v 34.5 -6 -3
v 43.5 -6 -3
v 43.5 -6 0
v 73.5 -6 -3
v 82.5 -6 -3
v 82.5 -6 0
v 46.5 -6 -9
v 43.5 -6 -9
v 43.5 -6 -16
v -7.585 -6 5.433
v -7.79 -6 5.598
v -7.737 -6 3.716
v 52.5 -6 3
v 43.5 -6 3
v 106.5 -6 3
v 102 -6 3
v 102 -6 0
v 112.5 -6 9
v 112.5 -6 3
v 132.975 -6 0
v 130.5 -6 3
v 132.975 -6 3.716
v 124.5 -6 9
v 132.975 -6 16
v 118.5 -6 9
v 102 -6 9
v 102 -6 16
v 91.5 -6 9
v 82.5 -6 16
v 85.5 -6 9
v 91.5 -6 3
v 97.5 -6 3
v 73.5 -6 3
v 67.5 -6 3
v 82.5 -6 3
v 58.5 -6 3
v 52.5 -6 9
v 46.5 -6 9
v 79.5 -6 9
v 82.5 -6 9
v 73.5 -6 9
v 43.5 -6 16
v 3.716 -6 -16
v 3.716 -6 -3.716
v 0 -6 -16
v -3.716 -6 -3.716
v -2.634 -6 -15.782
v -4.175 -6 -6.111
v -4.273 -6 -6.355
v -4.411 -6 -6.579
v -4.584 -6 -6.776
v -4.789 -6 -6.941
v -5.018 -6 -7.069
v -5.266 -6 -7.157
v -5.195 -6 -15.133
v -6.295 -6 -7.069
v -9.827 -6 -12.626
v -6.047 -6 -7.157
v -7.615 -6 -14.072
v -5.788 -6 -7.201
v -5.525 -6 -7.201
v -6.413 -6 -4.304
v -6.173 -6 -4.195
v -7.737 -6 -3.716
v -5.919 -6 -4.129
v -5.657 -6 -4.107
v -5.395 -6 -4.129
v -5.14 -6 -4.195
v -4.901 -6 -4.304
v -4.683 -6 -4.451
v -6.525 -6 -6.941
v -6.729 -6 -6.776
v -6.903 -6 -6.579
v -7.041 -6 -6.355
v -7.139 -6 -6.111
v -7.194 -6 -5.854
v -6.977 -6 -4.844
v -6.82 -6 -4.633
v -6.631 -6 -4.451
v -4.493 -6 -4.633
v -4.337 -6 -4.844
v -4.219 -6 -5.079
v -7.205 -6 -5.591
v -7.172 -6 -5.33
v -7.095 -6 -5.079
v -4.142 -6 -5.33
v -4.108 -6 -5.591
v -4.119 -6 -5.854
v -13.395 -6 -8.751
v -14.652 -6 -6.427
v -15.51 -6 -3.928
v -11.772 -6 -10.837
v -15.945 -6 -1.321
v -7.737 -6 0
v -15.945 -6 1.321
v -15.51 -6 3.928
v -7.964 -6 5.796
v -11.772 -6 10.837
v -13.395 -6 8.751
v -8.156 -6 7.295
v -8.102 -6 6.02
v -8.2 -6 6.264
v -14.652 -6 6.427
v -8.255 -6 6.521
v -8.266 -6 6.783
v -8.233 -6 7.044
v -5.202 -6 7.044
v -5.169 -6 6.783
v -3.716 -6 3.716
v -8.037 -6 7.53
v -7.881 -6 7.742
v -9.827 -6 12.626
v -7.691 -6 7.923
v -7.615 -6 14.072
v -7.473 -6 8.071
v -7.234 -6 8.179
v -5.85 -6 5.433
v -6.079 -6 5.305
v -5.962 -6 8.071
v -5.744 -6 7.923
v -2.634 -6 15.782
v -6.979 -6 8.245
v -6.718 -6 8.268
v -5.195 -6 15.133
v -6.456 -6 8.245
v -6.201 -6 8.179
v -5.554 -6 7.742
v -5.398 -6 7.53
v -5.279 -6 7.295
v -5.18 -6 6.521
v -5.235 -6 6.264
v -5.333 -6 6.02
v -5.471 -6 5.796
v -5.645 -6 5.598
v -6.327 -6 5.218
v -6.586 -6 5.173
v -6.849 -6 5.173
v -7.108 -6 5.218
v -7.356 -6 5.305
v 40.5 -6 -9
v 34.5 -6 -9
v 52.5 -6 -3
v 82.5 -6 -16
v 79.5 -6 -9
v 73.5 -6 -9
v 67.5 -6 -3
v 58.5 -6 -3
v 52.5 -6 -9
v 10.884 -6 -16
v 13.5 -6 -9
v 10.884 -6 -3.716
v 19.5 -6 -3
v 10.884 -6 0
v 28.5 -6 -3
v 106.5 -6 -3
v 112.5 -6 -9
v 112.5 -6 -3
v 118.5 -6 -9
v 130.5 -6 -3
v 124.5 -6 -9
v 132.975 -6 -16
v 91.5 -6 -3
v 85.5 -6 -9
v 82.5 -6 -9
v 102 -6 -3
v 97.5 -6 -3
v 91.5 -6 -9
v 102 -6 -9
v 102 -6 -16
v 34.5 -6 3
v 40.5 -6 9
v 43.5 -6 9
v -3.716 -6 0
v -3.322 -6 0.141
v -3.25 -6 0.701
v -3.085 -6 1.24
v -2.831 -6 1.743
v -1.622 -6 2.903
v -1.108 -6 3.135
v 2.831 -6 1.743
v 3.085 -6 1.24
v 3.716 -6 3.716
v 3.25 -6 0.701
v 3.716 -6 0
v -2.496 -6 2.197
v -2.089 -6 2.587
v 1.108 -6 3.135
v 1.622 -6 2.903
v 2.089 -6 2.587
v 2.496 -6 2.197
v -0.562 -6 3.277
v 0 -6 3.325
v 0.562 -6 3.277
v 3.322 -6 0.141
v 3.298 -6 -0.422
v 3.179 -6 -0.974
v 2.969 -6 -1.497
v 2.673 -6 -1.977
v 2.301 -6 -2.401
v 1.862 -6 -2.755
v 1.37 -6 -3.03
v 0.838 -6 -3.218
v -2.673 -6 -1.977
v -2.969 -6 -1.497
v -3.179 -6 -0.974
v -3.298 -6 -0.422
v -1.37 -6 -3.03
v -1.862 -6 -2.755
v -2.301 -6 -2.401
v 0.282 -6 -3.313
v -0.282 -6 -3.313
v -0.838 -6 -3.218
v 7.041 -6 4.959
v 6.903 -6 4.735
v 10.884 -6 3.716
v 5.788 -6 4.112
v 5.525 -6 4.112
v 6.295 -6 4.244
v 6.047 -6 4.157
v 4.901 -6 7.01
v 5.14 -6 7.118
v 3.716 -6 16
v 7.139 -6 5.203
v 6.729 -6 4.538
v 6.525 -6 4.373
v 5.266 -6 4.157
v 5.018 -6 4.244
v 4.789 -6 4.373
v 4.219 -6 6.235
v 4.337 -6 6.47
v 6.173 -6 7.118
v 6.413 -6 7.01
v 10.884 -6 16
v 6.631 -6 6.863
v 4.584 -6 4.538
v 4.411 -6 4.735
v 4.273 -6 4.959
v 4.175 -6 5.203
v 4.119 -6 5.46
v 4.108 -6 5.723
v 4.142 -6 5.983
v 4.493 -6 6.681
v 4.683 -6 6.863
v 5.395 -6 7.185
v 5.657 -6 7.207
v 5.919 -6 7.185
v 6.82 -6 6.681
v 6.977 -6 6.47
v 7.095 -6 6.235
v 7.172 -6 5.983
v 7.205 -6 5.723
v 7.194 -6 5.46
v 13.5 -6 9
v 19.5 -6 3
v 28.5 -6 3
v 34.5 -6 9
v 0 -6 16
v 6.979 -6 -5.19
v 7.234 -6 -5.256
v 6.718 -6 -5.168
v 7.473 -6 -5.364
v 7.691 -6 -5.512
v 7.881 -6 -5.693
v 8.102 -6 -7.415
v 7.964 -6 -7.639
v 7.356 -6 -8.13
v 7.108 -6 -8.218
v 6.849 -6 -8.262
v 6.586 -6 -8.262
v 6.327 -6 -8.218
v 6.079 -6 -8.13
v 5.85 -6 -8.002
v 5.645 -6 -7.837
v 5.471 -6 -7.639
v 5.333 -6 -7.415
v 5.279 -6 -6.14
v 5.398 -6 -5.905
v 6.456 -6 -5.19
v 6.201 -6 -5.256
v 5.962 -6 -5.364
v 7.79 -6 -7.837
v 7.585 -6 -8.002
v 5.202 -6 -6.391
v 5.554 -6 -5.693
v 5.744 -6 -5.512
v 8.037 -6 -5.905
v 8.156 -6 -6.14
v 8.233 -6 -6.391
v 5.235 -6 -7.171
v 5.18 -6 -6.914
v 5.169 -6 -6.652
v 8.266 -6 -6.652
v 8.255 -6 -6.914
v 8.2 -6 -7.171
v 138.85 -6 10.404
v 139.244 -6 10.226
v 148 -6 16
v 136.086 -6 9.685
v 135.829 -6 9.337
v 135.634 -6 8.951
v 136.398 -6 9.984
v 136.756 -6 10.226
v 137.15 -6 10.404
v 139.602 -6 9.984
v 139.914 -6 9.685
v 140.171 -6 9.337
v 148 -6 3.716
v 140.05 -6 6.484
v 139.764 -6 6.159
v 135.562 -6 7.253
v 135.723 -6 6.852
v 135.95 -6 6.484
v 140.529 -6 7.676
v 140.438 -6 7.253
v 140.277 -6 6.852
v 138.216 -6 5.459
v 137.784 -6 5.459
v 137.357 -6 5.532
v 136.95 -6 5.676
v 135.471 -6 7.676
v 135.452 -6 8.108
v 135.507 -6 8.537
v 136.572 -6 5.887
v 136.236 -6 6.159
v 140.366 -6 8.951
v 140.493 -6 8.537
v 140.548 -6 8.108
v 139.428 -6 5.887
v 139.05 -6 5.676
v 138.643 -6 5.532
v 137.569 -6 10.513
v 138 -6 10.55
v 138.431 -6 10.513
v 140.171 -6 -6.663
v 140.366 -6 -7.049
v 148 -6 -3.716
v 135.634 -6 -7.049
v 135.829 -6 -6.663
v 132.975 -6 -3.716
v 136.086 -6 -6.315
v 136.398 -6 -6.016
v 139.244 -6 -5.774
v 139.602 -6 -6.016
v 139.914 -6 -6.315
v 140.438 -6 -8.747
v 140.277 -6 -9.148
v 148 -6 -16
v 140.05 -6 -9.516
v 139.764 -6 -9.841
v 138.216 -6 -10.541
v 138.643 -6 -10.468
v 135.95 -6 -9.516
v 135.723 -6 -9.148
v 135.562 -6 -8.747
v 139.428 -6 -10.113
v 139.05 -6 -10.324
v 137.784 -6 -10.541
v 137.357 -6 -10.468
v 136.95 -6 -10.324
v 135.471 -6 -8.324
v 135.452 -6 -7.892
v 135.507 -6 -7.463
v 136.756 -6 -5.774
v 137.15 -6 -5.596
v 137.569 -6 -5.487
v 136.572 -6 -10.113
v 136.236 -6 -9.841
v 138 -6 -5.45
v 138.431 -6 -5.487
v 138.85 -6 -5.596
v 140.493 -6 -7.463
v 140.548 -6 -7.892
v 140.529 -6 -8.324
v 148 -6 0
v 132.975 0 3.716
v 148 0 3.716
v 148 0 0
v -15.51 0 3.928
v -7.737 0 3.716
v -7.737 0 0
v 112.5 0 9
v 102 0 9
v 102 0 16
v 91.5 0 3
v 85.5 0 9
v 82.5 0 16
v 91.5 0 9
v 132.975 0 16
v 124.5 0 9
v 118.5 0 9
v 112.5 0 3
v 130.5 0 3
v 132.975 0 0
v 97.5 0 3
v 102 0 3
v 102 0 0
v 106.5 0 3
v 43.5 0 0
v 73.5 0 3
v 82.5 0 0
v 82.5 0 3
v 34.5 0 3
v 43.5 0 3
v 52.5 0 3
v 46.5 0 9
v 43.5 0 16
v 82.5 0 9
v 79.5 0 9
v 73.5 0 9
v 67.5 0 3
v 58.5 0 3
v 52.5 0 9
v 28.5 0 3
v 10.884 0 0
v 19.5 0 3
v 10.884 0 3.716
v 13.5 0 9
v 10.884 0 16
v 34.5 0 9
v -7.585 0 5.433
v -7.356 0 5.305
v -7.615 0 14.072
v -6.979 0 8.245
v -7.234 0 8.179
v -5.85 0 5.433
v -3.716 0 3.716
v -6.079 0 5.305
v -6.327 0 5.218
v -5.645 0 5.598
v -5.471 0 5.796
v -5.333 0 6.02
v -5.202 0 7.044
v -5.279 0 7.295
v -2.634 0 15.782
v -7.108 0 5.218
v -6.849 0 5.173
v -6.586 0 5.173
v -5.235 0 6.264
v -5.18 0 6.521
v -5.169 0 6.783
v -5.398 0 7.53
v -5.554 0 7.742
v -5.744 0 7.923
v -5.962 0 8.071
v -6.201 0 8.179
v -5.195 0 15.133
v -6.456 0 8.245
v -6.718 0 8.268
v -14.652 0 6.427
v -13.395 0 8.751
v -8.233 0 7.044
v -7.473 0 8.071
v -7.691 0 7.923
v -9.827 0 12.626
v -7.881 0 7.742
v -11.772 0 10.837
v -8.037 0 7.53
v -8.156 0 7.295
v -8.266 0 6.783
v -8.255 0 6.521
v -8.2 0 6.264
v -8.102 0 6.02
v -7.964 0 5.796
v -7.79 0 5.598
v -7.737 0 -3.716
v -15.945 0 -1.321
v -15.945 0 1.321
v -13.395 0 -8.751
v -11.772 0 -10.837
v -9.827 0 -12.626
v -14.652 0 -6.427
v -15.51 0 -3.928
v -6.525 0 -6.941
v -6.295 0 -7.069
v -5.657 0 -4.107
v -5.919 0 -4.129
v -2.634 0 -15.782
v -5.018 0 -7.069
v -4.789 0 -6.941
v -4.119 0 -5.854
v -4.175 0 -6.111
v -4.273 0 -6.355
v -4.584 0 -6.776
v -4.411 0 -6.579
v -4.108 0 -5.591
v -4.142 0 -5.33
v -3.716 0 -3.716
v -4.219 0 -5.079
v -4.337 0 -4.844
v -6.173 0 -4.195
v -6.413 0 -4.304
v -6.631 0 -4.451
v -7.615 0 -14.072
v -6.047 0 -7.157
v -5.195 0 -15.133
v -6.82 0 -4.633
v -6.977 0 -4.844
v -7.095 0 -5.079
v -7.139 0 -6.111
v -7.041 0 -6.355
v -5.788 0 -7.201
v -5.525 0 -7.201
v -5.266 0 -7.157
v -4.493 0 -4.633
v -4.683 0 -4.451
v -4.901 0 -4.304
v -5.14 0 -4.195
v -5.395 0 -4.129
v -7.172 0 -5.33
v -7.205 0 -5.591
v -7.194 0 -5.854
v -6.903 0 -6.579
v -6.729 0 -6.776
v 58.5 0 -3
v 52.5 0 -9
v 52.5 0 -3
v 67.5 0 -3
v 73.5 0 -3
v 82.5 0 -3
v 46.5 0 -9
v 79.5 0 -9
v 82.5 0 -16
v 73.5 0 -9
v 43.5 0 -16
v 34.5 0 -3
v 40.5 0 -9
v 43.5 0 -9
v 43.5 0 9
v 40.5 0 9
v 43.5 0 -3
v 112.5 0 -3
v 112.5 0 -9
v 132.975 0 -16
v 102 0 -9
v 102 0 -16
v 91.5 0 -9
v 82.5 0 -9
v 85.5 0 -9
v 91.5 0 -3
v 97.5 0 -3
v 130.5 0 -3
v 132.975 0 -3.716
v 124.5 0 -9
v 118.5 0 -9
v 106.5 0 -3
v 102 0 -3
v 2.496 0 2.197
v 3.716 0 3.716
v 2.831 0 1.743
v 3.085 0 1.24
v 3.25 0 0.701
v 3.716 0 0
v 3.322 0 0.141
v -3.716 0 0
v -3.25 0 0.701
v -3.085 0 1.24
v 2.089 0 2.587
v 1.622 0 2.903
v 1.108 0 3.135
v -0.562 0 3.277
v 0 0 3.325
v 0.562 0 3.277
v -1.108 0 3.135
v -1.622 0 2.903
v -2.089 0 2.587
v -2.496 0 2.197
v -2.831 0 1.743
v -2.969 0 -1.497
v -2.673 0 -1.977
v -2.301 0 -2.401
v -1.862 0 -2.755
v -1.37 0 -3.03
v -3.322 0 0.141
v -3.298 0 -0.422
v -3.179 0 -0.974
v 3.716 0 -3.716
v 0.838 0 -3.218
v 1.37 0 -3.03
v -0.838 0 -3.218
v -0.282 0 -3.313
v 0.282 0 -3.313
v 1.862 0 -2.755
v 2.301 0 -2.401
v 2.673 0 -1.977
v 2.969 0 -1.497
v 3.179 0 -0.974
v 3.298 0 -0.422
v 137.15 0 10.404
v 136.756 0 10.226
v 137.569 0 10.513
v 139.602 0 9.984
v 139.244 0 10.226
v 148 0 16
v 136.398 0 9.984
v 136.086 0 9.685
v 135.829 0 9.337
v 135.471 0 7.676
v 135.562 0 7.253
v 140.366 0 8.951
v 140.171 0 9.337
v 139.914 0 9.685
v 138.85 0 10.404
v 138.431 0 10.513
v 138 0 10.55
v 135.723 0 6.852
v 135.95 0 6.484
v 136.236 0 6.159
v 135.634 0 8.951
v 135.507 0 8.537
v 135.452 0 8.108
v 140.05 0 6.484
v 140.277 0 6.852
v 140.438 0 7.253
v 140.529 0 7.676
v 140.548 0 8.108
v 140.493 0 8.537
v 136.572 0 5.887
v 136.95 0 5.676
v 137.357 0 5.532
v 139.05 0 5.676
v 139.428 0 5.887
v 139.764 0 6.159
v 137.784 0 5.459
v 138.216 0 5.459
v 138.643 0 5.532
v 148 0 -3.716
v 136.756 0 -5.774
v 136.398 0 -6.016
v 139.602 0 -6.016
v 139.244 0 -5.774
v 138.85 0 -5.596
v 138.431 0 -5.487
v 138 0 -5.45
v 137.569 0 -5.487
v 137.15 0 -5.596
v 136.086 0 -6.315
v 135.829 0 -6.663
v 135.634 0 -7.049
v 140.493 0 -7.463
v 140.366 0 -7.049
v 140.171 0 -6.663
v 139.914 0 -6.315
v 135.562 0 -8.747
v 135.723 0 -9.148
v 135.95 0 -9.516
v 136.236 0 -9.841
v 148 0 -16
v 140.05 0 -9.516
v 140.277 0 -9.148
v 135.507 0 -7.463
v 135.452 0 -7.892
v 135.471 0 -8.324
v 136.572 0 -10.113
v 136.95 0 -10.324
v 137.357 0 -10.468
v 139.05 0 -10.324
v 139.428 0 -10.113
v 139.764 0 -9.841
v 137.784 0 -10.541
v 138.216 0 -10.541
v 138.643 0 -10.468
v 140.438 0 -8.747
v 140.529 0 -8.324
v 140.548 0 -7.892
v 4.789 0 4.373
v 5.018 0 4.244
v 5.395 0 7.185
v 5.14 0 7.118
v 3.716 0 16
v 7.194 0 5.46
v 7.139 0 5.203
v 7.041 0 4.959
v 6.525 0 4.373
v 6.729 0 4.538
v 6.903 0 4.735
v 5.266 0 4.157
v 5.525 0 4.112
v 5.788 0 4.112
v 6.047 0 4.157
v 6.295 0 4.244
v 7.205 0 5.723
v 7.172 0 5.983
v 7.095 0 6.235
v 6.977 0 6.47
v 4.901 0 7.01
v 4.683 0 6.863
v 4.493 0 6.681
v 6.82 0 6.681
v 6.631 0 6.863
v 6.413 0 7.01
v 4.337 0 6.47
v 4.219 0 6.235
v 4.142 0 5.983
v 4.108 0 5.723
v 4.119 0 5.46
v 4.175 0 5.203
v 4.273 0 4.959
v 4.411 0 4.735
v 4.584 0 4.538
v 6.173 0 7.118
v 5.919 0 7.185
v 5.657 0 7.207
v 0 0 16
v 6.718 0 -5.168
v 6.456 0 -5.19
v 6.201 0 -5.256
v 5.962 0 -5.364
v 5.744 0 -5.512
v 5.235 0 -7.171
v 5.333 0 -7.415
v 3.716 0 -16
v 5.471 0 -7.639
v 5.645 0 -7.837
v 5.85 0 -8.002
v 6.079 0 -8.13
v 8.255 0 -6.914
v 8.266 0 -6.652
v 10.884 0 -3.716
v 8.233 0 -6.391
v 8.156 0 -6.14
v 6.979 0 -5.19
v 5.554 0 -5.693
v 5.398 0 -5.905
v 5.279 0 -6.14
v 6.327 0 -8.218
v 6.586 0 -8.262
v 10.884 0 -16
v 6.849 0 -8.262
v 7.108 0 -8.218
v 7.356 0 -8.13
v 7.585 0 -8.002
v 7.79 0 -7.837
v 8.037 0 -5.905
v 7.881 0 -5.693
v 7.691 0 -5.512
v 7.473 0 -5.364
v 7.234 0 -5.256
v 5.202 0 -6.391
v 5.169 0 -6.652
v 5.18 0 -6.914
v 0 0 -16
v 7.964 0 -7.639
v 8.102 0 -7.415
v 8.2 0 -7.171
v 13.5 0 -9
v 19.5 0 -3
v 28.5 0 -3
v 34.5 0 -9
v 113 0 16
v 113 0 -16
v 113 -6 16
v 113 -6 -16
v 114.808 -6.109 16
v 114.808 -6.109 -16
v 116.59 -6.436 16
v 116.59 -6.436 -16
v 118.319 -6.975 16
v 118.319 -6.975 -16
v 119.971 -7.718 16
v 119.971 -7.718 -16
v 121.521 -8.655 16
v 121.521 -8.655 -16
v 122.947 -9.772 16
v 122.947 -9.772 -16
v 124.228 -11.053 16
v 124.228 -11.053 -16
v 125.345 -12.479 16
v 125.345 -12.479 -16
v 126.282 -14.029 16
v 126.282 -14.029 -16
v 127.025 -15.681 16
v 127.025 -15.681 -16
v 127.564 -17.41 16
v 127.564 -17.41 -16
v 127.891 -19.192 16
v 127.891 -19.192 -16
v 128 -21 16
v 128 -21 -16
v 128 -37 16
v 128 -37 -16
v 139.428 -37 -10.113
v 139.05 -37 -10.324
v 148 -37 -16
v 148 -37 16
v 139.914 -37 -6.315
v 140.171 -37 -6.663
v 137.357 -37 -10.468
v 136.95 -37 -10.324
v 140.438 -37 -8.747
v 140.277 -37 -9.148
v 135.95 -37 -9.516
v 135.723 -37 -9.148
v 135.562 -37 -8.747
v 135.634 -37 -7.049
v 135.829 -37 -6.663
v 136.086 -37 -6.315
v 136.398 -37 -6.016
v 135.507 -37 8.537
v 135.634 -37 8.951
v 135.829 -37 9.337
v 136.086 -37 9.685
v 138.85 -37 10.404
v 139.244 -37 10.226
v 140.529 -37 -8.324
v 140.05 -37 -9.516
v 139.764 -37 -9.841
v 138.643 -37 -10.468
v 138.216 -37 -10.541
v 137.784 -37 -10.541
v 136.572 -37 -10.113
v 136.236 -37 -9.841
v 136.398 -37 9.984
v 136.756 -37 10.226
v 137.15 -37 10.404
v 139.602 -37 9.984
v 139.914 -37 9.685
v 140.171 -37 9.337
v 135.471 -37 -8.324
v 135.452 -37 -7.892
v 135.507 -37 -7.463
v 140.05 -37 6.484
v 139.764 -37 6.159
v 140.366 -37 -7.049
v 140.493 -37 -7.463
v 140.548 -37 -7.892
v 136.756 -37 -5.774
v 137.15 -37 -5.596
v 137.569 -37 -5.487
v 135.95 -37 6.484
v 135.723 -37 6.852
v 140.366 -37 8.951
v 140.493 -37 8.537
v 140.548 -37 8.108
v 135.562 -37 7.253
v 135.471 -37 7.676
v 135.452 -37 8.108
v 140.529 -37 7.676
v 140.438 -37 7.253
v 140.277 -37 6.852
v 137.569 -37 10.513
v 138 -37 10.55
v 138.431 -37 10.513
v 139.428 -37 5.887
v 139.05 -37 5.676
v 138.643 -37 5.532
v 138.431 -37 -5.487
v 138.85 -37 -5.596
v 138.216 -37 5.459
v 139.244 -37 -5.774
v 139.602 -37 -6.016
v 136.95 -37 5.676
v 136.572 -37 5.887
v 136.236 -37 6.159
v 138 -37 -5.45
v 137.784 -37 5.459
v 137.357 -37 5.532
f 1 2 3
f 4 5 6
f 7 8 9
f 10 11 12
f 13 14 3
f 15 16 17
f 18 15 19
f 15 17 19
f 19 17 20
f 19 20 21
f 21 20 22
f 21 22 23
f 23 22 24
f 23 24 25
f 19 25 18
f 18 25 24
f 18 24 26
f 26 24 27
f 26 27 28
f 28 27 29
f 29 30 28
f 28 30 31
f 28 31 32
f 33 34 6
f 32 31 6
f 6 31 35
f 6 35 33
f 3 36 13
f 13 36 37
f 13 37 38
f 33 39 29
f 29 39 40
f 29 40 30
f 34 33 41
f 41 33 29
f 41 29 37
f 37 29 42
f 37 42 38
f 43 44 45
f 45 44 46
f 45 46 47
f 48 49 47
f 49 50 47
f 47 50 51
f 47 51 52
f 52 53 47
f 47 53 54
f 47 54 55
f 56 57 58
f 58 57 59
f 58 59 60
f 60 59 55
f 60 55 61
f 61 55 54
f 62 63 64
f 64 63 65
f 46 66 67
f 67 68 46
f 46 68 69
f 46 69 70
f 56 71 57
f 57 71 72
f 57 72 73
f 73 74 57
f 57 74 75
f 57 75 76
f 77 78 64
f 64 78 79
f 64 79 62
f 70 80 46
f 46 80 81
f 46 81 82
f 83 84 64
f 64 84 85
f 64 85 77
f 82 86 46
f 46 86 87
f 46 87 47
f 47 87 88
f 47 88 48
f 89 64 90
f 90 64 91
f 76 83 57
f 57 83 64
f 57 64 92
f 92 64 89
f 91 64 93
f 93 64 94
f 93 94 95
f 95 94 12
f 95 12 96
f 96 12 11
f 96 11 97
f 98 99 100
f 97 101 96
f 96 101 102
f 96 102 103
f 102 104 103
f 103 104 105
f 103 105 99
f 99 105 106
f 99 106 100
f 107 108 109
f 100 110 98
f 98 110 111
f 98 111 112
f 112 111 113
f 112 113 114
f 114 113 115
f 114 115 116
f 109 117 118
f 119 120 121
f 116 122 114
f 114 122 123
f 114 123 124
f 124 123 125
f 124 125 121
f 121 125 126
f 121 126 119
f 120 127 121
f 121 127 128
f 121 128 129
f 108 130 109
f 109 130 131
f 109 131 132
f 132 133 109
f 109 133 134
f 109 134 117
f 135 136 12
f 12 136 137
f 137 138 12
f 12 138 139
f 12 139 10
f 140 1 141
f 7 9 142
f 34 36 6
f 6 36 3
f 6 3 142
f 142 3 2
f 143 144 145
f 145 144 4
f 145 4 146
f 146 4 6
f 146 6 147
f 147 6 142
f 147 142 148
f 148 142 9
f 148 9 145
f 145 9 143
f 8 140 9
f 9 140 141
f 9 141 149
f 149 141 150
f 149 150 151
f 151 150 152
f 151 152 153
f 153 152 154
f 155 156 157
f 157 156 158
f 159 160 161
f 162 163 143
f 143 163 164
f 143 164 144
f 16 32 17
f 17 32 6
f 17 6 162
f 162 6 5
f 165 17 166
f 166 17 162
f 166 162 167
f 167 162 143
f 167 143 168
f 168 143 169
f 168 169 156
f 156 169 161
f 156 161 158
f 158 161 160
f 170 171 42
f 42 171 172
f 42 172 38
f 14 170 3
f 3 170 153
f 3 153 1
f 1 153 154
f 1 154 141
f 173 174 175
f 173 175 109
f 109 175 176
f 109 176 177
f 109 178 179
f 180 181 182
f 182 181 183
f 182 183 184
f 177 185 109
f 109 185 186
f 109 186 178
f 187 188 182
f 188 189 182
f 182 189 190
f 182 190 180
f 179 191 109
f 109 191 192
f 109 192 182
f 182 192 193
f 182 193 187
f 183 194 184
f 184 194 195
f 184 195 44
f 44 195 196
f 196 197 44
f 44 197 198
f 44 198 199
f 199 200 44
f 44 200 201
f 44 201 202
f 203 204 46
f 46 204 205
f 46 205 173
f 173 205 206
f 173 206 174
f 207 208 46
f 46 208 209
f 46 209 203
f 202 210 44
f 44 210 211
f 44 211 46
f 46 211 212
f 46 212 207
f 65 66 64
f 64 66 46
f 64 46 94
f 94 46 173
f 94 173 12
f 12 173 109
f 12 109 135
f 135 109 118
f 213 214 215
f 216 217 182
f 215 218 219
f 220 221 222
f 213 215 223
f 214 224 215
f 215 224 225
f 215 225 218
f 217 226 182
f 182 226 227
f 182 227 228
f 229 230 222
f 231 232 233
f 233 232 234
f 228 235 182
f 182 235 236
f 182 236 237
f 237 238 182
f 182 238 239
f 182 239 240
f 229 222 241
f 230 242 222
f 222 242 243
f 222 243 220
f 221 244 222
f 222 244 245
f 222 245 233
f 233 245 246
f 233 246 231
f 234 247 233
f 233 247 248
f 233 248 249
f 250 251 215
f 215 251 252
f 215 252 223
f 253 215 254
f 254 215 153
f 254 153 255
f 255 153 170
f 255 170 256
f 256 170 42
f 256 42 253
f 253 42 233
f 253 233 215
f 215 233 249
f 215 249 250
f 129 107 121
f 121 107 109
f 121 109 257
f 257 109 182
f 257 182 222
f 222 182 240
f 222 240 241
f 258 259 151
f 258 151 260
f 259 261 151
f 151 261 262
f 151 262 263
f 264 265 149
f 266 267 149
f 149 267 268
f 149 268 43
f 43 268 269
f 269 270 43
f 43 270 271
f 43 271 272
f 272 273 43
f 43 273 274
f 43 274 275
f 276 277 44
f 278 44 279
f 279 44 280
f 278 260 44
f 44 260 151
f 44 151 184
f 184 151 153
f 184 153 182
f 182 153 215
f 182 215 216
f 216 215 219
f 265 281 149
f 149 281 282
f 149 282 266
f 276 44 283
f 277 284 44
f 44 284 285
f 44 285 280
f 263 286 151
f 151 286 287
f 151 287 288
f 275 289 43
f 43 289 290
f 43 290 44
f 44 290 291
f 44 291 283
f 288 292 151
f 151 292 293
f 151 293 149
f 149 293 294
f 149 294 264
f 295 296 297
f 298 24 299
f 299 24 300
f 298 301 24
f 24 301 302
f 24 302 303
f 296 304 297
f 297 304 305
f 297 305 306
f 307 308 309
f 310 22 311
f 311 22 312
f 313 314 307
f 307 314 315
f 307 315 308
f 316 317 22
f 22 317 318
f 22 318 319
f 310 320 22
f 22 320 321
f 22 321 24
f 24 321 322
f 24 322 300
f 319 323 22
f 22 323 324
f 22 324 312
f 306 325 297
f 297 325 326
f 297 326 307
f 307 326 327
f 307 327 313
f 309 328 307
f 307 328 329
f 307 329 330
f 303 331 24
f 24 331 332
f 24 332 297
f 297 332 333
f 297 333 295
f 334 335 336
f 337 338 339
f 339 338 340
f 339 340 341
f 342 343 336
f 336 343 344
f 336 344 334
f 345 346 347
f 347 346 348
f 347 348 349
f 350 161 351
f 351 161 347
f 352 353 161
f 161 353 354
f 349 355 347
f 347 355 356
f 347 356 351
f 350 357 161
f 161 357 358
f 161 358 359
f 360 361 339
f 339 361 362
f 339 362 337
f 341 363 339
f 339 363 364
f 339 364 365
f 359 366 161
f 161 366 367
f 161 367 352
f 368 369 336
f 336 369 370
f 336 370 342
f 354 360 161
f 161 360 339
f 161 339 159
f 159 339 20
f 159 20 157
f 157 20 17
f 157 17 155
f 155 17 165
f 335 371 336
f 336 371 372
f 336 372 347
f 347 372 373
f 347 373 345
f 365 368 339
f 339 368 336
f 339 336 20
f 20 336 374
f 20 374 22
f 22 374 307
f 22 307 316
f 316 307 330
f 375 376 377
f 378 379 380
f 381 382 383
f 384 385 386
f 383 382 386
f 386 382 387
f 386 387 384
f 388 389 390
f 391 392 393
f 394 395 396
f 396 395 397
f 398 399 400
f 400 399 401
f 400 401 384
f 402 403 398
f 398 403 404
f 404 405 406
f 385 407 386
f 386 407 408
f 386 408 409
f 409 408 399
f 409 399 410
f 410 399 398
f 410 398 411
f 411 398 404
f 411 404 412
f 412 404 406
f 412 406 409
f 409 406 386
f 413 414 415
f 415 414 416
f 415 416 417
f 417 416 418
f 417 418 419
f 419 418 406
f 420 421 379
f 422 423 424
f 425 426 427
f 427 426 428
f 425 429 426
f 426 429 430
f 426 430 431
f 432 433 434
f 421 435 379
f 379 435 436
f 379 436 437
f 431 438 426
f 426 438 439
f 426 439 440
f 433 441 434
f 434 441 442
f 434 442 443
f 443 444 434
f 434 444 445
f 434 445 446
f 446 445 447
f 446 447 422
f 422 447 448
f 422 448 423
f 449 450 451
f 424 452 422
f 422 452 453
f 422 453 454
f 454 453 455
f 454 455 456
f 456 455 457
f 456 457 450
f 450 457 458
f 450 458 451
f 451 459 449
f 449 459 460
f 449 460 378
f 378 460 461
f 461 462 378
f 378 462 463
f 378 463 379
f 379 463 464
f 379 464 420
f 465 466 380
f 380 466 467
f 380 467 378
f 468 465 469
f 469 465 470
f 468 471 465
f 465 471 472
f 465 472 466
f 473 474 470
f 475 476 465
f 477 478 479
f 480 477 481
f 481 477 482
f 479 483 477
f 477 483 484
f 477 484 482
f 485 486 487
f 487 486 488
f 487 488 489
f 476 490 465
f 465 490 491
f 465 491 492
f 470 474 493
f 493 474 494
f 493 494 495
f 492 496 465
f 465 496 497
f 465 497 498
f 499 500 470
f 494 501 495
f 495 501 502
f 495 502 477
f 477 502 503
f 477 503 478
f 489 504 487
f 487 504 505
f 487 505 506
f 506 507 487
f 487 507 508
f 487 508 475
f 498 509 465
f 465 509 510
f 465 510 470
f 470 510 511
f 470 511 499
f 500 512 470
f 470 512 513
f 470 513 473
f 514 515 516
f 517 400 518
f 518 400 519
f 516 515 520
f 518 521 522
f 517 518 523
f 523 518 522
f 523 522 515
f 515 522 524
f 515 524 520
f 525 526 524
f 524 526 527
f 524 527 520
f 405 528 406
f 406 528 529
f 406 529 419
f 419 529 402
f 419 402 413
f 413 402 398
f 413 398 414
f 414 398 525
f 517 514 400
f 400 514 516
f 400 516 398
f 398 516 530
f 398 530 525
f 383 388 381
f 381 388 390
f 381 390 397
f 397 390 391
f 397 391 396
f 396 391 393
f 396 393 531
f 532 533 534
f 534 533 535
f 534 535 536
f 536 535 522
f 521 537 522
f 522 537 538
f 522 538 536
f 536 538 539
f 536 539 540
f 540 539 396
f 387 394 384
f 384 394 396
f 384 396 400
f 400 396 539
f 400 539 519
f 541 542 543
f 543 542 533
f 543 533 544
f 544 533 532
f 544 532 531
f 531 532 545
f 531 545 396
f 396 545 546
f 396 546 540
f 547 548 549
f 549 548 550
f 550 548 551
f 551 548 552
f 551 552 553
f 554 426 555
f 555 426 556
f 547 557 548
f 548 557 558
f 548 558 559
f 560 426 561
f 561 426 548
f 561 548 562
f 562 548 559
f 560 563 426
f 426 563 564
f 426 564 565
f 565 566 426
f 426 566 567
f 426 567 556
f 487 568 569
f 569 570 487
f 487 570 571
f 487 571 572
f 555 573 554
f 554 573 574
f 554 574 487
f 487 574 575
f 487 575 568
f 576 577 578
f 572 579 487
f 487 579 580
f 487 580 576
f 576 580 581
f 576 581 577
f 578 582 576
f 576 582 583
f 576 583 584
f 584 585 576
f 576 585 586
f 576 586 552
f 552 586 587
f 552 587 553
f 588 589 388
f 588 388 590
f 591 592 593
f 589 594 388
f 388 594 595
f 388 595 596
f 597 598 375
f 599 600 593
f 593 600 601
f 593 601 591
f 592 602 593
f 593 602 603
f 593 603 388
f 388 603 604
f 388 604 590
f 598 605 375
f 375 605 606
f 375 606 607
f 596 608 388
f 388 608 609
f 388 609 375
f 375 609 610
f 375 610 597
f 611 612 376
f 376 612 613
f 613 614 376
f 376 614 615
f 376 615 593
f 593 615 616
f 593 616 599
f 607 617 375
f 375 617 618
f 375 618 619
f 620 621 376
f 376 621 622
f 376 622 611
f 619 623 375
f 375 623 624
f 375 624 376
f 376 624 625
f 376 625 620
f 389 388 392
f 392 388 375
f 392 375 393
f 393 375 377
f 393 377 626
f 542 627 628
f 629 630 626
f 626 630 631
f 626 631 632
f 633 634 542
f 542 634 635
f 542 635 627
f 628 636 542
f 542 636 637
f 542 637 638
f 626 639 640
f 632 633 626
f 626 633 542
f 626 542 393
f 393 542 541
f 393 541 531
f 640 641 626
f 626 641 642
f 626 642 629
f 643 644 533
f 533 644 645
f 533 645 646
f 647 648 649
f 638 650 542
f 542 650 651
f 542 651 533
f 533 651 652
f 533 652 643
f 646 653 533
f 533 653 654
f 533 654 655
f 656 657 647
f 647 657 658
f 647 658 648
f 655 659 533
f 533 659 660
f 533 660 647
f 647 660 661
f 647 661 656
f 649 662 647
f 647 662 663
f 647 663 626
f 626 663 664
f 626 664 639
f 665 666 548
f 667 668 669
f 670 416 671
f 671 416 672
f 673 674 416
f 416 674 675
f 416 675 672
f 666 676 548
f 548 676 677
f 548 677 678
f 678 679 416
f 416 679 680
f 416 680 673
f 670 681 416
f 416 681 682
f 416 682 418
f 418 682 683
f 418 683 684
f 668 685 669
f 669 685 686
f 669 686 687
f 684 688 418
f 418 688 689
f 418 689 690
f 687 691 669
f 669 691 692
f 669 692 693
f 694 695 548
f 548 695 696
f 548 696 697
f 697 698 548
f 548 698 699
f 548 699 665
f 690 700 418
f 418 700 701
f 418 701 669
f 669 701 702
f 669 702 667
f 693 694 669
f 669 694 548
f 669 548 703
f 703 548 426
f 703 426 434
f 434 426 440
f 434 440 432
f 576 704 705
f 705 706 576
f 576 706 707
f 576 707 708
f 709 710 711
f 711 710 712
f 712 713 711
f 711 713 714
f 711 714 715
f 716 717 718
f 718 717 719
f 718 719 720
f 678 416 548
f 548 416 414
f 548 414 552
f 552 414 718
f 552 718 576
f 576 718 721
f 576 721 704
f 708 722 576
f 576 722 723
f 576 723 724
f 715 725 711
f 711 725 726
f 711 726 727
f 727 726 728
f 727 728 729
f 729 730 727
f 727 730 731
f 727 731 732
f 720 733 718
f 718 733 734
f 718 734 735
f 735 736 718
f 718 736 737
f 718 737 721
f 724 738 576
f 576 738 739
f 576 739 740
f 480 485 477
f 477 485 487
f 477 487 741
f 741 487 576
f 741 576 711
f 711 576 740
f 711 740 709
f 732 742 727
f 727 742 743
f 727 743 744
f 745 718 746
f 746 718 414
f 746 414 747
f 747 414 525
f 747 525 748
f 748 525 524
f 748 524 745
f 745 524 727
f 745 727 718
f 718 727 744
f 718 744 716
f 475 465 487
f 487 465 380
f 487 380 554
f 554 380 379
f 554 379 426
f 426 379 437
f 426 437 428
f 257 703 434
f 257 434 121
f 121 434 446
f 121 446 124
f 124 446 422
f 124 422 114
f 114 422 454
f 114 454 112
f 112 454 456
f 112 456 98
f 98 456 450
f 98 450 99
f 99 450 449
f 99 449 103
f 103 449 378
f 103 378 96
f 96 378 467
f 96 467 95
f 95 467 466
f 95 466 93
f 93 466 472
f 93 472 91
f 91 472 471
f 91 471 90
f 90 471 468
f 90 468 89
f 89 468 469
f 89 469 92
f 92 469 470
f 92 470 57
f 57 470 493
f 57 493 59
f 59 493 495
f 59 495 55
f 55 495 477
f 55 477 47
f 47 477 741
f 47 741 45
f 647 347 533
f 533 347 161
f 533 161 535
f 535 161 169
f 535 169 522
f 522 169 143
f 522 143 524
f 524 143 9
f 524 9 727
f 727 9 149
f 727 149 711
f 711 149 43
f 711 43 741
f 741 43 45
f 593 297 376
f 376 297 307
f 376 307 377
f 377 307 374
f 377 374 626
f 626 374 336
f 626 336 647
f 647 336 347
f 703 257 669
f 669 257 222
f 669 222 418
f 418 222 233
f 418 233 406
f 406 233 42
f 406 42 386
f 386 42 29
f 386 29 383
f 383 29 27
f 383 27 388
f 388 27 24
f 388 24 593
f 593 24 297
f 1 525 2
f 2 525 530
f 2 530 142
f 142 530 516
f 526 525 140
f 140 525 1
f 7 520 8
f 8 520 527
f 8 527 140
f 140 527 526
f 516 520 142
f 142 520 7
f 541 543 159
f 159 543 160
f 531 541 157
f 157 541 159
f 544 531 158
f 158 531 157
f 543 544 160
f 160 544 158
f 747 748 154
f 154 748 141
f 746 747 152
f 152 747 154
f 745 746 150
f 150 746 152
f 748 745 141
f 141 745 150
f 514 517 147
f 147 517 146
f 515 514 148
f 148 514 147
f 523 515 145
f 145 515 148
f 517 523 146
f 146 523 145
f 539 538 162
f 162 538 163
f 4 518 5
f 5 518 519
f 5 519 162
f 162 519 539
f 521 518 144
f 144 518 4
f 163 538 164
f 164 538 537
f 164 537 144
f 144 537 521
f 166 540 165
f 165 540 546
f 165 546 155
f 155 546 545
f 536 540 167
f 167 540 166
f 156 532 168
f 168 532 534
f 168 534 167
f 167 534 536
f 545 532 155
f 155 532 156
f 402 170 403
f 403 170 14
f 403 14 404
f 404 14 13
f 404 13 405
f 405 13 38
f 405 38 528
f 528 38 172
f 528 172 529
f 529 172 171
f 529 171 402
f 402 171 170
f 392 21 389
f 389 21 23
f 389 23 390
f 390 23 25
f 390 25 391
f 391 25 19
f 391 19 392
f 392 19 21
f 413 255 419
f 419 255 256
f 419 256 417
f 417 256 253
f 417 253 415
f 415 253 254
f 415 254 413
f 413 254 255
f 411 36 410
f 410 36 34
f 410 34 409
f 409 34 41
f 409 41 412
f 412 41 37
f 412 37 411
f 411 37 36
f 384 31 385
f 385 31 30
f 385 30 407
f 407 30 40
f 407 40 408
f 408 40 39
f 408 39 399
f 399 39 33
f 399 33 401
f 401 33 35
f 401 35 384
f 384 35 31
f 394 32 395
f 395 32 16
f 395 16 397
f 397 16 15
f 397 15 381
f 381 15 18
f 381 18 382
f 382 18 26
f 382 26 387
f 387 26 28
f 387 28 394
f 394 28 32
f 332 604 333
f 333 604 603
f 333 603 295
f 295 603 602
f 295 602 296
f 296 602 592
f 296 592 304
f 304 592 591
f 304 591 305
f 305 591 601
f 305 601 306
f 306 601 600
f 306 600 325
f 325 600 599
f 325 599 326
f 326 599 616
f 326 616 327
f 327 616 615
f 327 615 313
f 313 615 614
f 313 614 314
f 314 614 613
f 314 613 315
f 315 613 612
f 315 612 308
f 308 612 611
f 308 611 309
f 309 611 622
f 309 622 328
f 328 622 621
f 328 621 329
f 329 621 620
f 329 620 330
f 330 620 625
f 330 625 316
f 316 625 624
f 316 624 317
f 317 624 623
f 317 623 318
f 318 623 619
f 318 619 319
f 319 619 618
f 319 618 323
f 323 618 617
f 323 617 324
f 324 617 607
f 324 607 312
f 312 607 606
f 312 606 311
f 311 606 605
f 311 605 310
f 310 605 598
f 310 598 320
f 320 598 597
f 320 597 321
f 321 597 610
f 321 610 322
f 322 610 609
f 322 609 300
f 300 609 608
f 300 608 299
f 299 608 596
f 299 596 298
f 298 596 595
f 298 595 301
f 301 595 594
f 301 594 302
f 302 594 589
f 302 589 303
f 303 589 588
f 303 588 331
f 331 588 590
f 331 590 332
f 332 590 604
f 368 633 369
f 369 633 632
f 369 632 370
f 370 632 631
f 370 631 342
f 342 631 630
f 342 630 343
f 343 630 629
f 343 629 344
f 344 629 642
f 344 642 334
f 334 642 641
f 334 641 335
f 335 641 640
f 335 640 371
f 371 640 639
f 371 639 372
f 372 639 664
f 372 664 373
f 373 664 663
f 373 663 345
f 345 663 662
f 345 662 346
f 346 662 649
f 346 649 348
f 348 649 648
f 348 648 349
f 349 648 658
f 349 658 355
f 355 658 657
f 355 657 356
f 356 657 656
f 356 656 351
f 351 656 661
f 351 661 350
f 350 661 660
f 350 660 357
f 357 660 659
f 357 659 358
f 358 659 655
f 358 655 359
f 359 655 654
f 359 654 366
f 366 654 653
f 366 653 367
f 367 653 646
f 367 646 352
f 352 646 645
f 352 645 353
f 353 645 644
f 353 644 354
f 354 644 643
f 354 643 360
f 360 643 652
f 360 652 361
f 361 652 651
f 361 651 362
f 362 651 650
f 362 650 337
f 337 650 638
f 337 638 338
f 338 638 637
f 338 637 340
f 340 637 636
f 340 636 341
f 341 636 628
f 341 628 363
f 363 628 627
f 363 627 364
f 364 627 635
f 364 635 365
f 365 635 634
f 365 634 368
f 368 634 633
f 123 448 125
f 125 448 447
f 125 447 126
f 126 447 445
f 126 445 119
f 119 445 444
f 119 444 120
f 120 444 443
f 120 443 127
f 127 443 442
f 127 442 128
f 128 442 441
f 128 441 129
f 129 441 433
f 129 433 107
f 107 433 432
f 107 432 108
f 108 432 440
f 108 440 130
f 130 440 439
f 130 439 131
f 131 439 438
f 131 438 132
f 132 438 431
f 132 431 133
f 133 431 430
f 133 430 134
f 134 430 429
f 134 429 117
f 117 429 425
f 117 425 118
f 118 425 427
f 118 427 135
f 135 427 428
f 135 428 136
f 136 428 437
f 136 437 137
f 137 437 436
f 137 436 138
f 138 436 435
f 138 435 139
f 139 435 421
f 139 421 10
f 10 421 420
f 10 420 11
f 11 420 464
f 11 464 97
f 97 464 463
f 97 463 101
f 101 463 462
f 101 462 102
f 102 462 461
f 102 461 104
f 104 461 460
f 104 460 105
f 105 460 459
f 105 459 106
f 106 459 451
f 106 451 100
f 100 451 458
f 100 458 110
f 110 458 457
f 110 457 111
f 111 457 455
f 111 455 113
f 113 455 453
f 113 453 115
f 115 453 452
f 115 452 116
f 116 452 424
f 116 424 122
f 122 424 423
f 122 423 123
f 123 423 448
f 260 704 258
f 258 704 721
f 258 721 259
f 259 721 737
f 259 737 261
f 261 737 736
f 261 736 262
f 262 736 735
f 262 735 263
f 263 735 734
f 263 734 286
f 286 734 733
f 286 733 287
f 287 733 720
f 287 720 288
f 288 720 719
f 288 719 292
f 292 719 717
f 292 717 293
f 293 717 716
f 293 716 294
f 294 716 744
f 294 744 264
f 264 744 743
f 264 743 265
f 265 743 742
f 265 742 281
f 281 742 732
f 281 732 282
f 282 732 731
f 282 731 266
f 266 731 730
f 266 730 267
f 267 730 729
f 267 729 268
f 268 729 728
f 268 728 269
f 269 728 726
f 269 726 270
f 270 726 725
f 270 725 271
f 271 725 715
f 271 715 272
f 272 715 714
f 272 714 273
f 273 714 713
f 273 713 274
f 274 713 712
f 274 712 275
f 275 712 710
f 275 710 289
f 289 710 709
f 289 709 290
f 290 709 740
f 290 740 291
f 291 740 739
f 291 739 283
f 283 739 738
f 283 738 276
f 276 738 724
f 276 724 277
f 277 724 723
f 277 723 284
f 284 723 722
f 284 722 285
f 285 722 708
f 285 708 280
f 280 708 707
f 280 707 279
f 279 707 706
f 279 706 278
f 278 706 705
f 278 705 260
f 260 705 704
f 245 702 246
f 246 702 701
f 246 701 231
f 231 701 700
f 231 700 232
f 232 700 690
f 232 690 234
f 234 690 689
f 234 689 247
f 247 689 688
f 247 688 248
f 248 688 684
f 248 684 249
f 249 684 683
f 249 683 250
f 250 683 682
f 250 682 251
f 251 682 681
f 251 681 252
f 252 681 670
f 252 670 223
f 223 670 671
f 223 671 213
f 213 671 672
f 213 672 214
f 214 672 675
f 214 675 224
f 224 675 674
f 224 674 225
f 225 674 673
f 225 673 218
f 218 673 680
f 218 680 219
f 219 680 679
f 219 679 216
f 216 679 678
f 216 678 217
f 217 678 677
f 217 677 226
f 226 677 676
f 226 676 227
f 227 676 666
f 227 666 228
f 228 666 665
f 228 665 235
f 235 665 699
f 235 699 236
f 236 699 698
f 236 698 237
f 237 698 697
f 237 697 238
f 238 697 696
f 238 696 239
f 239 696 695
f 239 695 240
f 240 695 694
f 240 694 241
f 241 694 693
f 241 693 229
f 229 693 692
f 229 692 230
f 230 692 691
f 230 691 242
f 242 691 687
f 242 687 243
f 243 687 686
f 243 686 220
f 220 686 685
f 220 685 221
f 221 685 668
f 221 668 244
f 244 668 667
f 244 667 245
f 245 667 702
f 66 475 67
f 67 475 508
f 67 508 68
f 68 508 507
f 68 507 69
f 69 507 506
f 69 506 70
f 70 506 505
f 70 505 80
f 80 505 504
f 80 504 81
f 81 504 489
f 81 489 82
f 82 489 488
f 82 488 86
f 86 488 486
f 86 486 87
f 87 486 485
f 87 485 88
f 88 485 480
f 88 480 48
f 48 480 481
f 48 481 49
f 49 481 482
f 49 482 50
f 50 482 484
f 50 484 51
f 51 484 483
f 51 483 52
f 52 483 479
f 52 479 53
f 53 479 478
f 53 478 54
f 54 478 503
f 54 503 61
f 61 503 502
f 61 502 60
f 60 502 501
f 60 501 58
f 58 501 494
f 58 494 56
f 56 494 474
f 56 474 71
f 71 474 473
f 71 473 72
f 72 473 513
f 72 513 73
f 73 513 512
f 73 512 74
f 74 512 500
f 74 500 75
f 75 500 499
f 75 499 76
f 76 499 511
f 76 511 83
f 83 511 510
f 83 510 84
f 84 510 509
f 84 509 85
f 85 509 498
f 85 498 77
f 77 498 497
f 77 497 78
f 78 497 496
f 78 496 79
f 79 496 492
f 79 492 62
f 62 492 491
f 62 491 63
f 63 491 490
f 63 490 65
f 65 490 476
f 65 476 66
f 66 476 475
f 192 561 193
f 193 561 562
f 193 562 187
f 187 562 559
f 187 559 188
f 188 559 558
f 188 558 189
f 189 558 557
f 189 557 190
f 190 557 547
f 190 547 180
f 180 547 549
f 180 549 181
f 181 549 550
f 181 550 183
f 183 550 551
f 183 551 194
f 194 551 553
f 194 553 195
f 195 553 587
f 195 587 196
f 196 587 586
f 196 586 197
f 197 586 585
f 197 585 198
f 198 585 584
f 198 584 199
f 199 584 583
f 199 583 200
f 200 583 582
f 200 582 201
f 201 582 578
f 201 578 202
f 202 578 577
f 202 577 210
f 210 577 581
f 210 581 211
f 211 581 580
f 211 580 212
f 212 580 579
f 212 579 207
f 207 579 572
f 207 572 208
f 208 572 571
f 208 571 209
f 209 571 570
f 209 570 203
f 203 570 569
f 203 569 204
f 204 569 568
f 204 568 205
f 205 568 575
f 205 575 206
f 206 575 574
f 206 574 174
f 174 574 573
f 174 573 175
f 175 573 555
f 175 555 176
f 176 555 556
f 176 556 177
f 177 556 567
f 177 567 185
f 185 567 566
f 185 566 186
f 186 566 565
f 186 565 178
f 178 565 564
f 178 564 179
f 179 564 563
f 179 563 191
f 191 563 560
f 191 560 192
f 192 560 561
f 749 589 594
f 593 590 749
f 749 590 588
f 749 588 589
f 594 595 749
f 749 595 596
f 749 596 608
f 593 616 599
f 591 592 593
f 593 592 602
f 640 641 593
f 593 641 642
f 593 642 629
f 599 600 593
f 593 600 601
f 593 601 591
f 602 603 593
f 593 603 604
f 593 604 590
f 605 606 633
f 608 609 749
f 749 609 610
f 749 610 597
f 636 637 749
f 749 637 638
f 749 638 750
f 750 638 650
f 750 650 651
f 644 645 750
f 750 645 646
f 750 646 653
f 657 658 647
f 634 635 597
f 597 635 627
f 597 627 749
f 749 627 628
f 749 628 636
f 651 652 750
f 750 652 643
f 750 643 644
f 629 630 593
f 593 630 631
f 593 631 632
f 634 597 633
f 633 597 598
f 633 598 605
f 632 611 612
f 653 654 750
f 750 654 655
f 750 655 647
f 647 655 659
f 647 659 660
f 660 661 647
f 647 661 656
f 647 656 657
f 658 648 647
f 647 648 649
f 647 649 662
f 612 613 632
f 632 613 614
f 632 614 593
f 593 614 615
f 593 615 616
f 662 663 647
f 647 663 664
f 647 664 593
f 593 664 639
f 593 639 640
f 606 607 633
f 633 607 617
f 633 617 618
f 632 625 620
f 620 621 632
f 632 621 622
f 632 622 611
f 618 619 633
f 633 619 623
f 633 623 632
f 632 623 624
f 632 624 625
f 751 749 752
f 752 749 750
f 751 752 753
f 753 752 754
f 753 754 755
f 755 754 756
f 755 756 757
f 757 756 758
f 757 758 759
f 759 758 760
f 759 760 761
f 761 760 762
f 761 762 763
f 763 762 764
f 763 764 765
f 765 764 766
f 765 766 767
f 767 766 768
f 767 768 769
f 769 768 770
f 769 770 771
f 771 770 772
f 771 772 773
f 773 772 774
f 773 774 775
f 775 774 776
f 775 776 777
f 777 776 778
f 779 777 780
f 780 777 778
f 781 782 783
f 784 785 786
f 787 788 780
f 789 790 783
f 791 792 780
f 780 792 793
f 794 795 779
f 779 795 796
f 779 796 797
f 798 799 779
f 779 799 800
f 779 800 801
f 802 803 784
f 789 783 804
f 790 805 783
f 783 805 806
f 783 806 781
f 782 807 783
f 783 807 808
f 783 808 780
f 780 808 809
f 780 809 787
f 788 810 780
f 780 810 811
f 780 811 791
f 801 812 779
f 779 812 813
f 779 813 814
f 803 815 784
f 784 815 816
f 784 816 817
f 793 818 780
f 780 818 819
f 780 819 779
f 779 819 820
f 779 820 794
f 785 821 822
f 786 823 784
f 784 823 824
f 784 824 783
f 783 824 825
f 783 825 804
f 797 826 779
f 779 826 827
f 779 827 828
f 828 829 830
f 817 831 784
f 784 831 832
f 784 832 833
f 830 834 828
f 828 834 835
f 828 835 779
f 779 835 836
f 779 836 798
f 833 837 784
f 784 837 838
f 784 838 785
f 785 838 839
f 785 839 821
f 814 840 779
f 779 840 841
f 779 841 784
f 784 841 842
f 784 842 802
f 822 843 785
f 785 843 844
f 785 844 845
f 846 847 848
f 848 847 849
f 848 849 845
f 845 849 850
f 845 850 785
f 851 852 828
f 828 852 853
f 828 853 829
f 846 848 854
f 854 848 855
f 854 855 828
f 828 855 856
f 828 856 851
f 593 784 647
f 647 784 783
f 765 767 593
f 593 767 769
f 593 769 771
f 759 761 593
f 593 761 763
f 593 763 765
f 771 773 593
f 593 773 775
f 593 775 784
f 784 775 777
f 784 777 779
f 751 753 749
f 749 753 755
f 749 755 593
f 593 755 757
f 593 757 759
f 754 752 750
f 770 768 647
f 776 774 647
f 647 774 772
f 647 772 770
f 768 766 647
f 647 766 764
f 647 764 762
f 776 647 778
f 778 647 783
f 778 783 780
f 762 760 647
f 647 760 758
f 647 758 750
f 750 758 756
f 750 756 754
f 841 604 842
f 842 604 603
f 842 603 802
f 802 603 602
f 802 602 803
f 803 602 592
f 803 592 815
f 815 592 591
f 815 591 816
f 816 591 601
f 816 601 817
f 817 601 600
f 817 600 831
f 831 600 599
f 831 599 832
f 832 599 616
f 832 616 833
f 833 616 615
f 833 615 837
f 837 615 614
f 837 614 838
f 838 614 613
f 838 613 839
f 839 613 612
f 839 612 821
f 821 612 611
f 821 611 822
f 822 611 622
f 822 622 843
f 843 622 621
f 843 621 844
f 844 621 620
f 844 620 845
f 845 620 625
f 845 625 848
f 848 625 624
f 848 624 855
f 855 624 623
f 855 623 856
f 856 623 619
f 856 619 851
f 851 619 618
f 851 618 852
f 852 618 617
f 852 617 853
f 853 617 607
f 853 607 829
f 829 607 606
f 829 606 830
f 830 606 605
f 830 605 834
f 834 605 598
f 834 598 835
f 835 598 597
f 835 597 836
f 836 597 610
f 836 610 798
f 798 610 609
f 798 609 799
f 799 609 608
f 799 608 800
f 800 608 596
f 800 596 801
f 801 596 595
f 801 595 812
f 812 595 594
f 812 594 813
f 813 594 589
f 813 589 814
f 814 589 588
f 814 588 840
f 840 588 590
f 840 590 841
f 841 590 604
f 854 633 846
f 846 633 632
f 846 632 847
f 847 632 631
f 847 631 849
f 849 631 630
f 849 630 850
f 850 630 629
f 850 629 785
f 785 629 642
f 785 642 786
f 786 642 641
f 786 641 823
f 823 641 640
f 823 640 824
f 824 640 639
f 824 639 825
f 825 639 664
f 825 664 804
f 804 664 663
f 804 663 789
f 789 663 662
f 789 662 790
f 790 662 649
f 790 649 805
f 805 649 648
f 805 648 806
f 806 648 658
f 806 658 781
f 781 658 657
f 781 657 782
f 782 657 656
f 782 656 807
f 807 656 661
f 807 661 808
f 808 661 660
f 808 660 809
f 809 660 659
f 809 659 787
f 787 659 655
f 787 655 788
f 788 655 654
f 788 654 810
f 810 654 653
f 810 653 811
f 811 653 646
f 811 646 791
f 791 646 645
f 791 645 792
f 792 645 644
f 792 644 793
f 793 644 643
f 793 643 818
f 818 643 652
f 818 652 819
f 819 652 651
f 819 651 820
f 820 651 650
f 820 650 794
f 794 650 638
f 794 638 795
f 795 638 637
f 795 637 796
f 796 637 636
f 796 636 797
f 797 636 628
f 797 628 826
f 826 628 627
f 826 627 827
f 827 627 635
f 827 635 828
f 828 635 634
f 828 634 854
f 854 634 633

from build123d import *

# Parameters (mm, degrees)
BOSS_EXTRUDE1_DEPTH  = 6
CUT_EXTRUDE3_REACH   = 150.983
BOSS_EXTRUDE12_DEPTH = 16
SKETCH8_R            = 2.55
CUT_EXTRUDE4_DEPTH   = 154.391655575
SKETCH10_R           = 1.55
SKETCH10_R_2         = 3.325
CUT_EXTRUDE2_DEPTH   = 6


with BuildPart() as part:
    # Sketch1 → Boss-Extrude1 (new body)
    with BuildSketch(Plane(origin=(0, 0, 0), x_dir=(1, 0, 0), z_dir=(0, 1, 0))):
        with BuildLine():
            Line((0, -16), (148, -16))
            Line((148, -16), (148, 16))
            Line((148, 16), (0, 16))
            ThreePointArc((0, 16), (-16, 0), (0, -16))
        make_face()
    extrude(amount=-BOSS_EXTRUDE1_DEPTH)

    # Sketch11 → Cut-Extrude3 (cut, up to next)
    with BuildSketch(Plane(origin=(0, 0, 0), x_dir=(1, 0, 0), z_dir=(0, 1, 0)), mode=Mode.PRIVATE) as cut_extrude3_sk1:
        Polygon((13.5, 9), (19.5, 3), (28.5, 3), (34.5, 9), align=None)
    cut_extrude3_tool1 = extrude(cut_extrude3_sk1.sketch, amount=-CUT_EXTRUDE3_REACH, mode=Mode.PRIVATE) & part.part
    # Sketch11 → Cut-Extrude3 (cut, up to next)
    with BuildSketch(Plane(origin=(0, 0, 0), x_dir=(1, 0, 0), z_dir=(0, 1, 0)), mode=Mode.PRIVATE) as cut_extrude3_sk2:
        Polygon((52.5, 3), (46.5, 9), (40.5, 9), (34.5, 3), align=None)
    cut_extrude3_tool2 = extrude(cut_extrude3_sk2.sketch, amount=-CUT_EXTRUDE3_REACH, mode=Mode.PRIVATE) & part.part
    # Sketch11 → Cut-Extrude3 (cut, up to next)
    with BuildSketch(Plane(origin=(0, 0, 0), x_dir=(1, 0, 0), z_dir=(0, 1, 0)), mode=Mode.PRIVATE) as cut_extrude3_sk3:
        Polygon((52.5, 9), (58.5, 3), (67.5, 3), (73.5, 9), align=None)
    cut_extrude3_tool3 = extrude(cut_extrude3_sk3.sketch, amount=-CUT_EXTRUDE3_REACH, mode=Mode.PRIVATE) & part.part
    # Sketch11 → Cut-Extrude3 (cut, up to next)
    with BuildSketch(Plane(origin=(0, 0, 0), x_dir=(1, 0, 0), z_dir=(0, 1, 0)), mode=Mode.PRIVATE) as cut_extrude3_sk4:
        Polygon((91.5, 9), (97.5, 3), (106.5, 3), (112.5, 9), align=None)
    cut_extrude3_tool4 = extrude(cut_extrude3_sk4.sketch, amount=-CUT_EXTRUDE3_REACH, mode=Mode.PRIVATE) & part.part
    # Sketch11 → Cut-Extrude3 (cut, up to next)
    with BuildSketch(Plane(origin=(0, 0, 0), x_dir=(1, 0, 0), z_dir=(0, 1, 0)), mode=Mode.PRIVATE) as cut_extrude3_sk5:
        Polygon((73.5, 3), (91.5, 3), (85.5, 9), (79.5, 9), align=None)
    cut_extrude3_tool5 = extrude(cut_extrude3_sk5.sketch, amount=-CUT_EXTRUDE3_REACH, mode=Mode.PRIVATE) & part.part
    # Sketch11 → Cut-Extrude3 (cut, up to next)
    with BuildSketch(Plane(origin=(0, 0, 0), x_dir=(1, 0, 0), z_dir=(0, 1, 0)), mode=Mode.PRIVATE) as cut_extrude3_sk6:
        Polygon((112.5, 3), (130.5, 3), (124.5, 9), (118.5, 9), align=None)
    cut_extrude3_tool6 = extrude(cut_extrude3_sk6.sketch, amount=-CUT_EXTRUDE3_REACH, mode=Mode.PRIVATE) & part.part
    cut_extrude3_1 = cut_extrude3_tool1.solids().sort_by_distance((24, 0, -6.4))[0]
    add(cut_extrude3_1, mode=Mode.SUBTRACT)
    cut_extrude3_2 = cut_extrude3_tool2.solids().sort_by_distance((43.5, 0, -5.5))[0]
    add(cut_extrude3_2, mode=Mode.SUBTRACT)
    cut_extrude3_3 = cut_extrude3_tool3.solids().sort_by_distance((63, 0, -6.4))[0]
    add(cut_extrude3_3, mode=Mode.SUBTRACT)
    cut_extrude3_4 = cut_extrude3_tool4.solids().sort_by_distance((102, 0, -6.4))[0]
    add(cut_extrude3_4, mode=Mode.SUBTRACT)
    cut_extrude3_5 = cut_extrude3_tool5.solids().sort_by_distance((82.5, 0, -5.5))[0]
    add(cut_extrude3_5, mode=Mode.SUBTRACT)
    cut_extrude3_6 = cut_extrude3_tool6.solids().sort_by_distance((121.5, 0, -5.5))[0]
    add(cut_extrude3_6, mode=Mode.SUBTRACT)
    cut_extrude3 = cut_extrude3_1 + cut_extrude3_2 + cut_extrude3_3 + cut_extrude3_4 + cut_extrude3_5 + cut_extrude3_6  # Cut-Extrude3 as one shape, for the pattern or mirror that repeats it

    # Mirror1: Cut-Extrude3 across plane
    add(cut_extrude3.mirror(Plane.XY), mode=Mode.SUBTRACT)


with BuildPart() as body_2:
    # Sketch14 → Boss-Extrude12 (new, symmetric)
    with BuildSketch(Plane.XY):
        with BuildLine():
            Line((148, -6), (148, -37))
            Line((148, -37), (128, -37))
            Line((128, -37), (128, -21))
            ThreePointArc((128, -21), (123.606601718, -10.393398282), (113, -6))
            Line((113, -6), (113, 0))
            Line((113, 0), (148, 0))
            Line((148, 0), (148, -6))
        make_face()
    extrude(amount=BOSS_EXTRUDE12_DEPTH, both=True)


with BuildPart() as cut_extrude4_tool:
    # Sketch8 → Cut-Extrude4 (new, through all)
    with BuildSketch(Plane(origin=(0, 0, 0), x_dir=(1, 0, 0), z_dir=(0, 1, 0))):
        with Locations(Location((138, 8, 0), (0, 0, 270))):
            Circle(SKETCH8_R)
        with Locations(Location((138, -8, 0), (0, 0, 270))):
            Circle(SKETCH8_R)
    extrude(amount=-CUT_EXTRUDE4_DEPTH)


with BuildPart() as part_1:
    add(part.part)

    # Cut-Extrude4: cut by cut_extrude4_tool
    add(cut_extrude4_tool.part, mode=Mode.SUBTRACT)

    # Sketch10 → Cut-Extrude2 (cut)
    with BuildSketch(Plane(origin=(0, 0, 0), x_dir=(1, 0, 0), z_dir=(0, 1, 0))):
        with Locations(Location((-6.717514421, -6.717514421, 0), (0, 0, 270))):
            Circle(SKETCH10_R)
        with Locations(Location((6.717514421, 6.717514421, 0), (0, 0, 270))):
            Circle(SKETCH10_R)
        with Locations(Location((5.656854249, -5.656854249, 0), (0, 0, 270))):
            Circle(SKETCH10_R)
        with Locations(Location((-5.656854249, 5.656854249, 0), (0, 0, 270))):
            Circle(SKETCH10_R)
        with Locations(Location((0, 0, 0), (0, 0, 270))):
            Circle(SKETCH10_R_2)
    extrude(amount=-CUT_EXTRUDE2_DEPTH, mode=Mode.SUBTRACT)


with BuildPart() as body_2_1:
    add(body_2.part)

    # Cut-Extrude4: cut by cut_extrude4_tool
    add(cut_extrude4_tool.part, mode=Mode.SUBTRACT)


solid = Compound([part_1.part, body_2_1.part])
